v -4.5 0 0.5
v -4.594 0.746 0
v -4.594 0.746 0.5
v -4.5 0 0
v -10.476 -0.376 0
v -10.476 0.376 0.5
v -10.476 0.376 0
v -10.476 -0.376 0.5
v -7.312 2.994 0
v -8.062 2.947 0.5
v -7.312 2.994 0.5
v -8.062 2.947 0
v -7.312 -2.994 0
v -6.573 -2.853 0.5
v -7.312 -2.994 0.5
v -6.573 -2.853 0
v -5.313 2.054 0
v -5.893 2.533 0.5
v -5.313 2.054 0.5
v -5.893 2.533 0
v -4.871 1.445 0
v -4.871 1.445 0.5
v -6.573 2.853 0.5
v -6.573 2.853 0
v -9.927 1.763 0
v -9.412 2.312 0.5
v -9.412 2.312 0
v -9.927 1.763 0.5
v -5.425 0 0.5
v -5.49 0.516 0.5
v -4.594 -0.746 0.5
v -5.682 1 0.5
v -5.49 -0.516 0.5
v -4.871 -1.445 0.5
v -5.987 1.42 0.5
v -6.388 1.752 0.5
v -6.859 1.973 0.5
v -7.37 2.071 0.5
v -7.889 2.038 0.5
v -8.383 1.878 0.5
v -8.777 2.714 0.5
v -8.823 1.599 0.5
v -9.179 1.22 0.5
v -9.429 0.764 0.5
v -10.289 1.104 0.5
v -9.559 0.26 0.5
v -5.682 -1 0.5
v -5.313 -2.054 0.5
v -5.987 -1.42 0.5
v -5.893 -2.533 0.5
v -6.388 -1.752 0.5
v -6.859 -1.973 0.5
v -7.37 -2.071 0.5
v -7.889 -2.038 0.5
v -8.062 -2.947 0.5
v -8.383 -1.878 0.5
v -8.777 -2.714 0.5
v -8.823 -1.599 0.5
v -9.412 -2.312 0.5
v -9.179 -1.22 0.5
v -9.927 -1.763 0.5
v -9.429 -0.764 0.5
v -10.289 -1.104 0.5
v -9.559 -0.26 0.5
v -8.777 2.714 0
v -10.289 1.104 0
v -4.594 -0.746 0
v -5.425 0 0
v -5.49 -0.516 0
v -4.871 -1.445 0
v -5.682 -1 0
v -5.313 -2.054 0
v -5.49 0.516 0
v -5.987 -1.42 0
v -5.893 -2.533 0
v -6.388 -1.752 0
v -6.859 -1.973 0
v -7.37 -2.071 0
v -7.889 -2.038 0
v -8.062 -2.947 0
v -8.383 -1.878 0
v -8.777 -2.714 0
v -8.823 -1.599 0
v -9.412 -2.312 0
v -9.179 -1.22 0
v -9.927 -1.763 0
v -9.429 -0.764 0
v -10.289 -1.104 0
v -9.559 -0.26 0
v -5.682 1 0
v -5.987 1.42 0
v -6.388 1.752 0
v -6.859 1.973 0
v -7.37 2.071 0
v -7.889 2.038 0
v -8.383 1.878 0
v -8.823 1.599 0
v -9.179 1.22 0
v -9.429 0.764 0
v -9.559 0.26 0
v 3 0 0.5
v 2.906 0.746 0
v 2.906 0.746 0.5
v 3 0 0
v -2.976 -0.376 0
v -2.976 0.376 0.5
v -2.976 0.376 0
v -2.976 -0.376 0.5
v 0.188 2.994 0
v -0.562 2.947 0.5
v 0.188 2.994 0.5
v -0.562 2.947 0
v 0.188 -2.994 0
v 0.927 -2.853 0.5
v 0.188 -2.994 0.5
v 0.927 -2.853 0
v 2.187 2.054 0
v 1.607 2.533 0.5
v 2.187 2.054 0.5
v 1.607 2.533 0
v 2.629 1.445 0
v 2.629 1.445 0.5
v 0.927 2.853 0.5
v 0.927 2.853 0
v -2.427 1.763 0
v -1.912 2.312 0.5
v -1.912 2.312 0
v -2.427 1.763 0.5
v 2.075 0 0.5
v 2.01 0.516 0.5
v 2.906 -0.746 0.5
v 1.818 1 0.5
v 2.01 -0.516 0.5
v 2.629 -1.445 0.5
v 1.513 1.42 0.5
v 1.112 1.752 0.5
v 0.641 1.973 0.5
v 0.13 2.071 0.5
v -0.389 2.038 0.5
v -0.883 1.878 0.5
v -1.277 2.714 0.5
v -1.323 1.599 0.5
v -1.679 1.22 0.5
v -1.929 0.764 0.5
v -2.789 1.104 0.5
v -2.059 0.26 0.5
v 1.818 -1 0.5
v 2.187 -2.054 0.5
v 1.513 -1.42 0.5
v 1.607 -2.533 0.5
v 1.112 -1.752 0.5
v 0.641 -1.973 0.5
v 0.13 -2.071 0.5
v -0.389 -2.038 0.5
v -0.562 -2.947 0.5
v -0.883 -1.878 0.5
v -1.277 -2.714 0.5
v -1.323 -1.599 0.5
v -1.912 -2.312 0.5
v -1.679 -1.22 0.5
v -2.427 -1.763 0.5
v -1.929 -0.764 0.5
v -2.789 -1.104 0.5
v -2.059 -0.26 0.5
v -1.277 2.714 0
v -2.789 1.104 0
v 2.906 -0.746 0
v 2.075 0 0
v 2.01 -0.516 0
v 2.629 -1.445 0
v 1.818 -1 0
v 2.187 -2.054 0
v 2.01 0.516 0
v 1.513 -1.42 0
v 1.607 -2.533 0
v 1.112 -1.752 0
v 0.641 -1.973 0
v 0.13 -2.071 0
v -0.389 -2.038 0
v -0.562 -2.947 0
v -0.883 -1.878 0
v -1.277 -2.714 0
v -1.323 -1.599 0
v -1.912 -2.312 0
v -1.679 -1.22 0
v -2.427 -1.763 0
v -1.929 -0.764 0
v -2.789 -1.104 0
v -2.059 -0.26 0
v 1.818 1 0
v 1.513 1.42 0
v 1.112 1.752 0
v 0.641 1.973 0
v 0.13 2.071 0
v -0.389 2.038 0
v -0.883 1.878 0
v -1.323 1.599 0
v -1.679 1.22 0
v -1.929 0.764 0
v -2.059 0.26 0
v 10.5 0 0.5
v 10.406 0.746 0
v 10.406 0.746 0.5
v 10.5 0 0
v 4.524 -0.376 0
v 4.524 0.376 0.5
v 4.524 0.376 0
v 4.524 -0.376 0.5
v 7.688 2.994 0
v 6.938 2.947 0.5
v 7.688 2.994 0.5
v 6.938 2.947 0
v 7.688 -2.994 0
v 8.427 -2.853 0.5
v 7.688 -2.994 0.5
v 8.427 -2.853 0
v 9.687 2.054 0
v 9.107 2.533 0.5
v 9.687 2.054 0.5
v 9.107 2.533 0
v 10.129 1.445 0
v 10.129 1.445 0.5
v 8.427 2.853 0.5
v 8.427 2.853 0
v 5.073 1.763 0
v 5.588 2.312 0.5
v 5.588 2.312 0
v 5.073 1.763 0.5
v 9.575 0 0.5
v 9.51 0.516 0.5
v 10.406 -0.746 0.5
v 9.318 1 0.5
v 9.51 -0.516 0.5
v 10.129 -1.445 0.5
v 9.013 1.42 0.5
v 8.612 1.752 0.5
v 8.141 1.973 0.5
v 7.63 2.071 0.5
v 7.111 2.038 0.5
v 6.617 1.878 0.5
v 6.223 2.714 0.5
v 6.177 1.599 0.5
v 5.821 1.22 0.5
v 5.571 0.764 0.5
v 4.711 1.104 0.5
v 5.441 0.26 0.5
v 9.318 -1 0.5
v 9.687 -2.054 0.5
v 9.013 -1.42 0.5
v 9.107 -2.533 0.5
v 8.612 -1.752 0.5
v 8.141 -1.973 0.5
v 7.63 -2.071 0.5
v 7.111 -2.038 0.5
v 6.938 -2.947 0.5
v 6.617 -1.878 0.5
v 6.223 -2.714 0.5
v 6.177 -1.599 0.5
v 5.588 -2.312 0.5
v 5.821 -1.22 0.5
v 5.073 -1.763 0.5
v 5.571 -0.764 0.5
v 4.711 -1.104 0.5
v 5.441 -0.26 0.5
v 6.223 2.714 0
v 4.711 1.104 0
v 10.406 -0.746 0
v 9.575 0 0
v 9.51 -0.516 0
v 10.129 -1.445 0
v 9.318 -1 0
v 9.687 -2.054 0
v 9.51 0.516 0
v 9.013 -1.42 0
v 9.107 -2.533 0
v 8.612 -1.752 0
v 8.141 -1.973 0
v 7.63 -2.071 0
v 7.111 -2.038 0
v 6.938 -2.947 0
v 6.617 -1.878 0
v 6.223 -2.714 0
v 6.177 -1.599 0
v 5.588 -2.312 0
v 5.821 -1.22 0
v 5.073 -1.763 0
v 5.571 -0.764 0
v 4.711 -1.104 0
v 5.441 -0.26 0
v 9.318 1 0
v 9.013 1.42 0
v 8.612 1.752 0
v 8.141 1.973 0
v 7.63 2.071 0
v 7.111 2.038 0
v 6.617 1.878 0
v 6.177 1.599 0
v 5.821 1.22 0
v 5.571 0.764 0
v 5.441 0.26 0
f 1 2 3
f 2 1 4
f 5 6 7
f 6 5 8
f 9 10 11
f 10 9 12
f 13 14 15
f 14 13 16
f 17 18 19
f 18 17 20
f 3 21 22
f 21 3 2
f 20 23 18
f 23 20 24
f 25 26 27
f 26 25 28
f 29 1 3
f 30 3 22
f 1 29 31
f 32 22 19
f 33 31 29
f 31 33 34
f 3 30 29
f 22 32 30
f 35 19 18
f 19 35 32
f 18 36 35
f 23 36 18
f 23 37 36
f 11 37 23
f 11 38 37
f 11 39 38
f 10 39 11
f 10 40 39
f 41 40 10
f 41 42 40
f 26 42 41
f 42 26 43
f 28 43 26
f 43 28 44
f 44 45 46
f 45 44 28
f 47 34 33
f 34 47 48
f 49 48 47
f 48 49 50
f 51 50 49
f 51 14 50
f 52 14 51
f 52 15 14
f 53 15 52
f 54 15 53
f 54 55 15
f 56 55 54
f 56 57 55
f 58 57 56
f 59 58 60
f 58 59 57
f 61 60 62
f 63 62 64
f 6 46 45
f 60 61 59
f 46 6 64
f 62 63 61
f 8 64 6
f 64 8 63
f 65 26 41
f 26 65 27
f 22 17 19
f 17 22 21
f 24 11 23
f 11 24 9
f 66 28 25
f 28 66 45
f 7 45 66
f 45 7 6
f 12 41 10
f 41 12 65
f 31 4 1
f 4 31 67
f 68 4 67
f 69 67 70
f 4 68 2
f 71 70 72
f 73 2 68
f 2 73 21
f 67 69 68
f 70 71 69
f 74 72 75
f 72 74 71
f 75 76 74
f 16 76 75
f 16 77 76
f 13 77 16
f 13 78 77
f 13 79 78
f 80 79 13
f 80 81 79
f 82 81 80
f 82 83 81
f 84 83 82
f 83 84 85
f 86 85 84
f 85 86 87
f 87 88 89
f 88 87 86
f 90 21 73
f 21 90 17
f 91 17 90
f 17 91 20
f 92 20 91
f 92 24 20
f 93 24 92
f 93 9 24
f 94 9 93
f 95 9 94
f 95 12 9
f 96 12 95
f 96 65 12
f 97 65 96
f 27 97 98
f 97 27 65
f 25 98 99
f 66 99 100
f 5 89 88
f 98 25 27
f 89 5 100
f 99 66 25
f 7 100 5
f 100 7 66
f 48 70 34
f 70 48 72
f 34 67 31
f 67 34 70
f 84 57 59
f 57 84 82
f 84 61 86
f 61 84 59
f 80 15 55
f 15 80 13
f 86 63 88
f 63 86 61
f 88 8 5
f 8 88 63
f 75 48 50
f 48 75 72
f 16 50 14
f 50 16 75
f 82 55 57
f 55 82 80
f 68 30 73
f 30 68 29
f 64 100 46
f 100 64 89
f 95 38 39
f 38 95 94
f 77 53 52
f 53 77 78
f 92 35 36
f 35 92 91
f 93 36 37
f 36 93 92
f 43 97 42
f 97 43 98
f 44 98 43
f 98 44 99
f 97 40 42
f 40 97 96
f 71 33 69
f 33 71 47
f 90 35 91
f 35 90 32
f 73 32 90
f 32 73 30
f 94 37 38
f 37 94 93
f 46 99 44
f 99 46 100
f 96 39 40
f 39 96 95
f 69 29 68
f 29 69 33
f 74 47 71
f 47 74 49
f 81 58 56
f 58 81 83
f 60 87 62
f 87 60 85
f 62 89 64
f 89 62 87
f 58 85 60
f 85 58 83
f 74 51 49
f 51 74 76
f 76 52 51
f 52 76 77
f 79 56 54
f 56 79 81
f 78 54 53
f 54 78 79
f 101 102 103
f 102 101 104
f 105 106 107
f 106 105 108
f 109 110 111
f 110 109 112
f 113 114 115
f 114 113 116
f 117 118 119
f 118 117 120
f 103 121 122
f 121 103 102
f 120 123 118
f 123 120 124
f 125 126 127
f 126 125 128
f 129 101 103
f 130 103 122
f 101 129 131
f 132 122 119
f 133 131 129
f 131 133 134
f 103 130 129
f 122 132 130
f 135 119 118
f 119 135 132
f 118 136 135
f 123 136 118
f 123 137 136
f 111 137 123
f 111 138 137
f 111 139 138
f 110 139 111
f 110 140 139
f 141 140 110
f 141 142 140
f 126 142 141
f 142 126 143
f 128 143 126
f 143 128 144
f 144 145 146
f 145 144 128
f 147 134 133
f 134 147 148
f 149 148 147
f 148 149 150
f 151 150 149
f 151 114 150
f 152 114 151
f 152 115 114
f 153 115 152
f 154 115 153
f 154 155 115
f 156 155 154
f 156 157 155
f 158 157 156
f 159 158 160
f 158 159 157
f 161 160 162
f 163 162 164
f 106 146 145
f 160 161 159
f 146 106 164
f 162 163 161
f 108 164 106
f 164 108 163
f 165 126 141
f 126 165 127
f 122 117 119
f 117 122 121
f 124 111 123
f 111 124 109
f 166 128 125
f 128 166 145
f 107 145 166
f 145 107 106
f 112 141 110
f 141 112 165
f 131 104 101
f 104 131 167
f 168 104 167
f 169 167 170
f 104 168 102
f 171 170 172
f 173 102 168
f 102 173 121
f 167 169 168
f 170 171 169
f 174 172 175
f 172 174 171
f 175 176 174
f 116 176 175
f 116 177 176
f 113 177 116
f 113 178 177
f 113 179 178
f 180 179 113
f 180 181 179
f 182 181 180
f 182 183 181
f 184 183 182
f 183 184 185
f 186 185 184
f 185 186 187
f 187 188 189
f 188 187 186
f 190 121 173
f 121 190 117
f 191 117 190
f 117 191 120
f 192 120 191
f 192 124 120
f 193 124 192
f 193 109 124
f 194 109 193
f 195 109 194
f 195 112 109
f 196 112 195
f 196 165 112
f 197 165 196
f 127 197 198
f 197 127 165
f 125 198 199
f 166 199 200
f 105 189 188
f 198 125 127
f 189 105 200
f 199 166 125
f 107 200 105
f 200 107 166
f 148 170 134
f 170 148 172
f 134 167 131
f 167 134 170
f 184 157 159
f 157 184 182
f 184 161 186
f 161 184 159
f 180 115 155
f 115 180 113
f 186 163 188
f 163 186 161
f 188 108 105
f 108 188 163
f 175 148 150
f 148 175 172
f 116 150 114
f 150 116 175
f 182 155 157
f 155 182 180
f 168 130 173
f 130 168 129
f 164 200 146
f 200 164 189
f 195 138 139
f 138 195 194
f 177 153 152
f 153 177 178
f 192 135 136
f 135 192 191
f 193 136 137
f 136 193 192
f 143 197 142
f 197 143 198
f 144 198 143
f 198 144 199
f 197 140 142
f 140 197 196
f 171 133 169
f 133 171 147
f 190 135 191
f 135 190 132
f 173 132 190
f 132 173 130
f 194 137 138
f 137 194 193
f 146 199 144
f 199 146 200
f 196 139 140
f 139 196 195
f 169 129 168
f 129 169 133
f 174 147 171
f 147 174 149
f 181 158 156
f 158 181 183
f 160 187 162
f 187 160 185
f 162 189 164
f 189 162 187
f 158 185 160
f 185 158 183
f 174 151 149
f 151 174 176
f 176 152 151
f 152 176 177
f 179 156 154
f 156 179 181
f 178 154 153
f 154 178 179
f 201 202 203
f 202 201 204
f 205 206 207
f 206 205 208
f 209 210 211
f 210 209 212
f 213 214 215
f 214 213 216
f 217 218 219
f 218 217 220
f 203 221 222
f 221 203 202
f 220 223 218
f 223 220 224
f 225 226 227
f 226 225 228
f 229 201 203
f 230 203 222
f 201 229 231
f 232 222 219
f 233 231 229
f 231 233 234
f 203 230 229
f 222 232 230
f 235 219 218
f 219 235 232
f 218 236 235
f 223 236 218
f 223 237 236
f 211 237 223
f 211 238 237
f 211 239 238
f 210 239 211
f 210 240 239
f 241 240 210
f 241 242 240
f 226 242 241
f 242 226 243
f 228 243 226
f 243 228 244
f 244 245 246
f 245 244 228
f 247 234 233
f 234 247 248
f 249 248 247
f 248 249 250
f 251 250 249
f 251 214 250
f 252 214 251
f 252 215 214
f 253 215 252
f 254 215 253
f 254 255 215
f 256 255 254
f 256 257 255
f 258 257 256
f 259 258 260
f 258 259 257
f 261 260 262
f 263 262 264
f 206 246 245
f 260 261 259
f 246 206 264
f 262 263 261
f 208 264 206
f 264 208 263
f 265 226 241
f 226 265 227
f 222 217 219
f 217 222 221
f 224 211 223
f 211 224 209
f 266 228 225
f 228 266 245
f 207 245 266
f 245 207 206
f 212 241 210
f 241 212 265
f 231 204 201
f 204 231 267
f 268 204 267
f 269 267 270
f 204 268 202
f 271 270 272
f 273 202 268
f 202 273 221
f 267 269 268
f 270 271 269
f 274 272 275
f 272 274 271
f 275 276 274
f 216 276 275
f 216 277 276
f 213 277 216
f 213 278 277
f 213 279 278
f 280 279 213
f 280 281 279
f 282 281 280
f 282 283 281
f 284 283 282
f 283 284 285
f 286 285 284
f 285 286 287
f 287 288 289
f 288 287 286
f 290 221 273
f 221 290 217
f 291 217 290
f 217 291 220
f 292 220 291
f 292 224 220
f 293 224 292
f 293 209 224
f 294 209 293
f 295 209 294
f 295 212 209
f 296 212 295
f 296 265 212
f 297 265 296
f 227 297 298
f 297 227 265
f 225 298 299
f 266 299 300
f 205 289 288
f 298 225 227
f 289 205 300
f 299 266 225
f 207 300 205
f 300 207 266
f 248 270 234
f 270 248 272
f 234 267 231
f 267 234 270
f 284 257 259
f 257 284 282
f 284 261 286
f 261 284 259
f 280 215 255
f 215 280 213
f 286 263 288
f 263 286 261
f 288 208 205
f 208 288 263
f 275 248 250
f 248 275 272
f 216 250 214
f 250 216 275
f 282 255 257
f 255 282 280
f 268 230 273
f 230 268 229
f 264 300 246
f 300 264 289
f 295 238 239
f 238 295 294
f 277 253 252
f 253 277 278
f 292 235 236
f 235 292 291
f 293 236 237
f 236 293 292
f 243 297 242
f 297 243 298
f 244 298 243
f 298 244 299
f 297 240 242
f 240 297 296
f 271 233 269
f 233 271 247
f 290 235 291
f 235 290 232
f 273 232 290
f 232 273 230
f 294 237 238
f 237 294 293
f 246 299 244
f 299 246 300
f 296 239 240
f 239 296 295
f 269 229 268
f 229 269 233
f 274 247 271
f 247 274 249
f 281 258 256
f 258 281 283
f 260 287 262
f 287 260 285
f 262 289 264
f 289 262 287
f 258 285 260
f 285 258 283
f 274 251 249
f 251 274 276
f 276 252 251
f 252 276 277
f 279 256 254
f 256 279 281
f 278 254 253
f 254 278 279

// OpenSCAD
/**
 * washer.scad
 * 
 * Created by Diego Viejo
 * 
 * 02/Dec/2015
 * 
 */

innerDiam = 4.15;
outerDiam = 6;
washerHeight = 0.5;

module washer(height = washerHeight)
difference()
{
    cylinder(d=outerDiam, h=height, $fn=25);
    translate([0, 0, -1]) cylinder(d=innerDiam, h=height+2, $fn=25);
}

for(i=[-1:1])
    translate([i*(outerDiam+1.5), 0, 0])
        washer();
